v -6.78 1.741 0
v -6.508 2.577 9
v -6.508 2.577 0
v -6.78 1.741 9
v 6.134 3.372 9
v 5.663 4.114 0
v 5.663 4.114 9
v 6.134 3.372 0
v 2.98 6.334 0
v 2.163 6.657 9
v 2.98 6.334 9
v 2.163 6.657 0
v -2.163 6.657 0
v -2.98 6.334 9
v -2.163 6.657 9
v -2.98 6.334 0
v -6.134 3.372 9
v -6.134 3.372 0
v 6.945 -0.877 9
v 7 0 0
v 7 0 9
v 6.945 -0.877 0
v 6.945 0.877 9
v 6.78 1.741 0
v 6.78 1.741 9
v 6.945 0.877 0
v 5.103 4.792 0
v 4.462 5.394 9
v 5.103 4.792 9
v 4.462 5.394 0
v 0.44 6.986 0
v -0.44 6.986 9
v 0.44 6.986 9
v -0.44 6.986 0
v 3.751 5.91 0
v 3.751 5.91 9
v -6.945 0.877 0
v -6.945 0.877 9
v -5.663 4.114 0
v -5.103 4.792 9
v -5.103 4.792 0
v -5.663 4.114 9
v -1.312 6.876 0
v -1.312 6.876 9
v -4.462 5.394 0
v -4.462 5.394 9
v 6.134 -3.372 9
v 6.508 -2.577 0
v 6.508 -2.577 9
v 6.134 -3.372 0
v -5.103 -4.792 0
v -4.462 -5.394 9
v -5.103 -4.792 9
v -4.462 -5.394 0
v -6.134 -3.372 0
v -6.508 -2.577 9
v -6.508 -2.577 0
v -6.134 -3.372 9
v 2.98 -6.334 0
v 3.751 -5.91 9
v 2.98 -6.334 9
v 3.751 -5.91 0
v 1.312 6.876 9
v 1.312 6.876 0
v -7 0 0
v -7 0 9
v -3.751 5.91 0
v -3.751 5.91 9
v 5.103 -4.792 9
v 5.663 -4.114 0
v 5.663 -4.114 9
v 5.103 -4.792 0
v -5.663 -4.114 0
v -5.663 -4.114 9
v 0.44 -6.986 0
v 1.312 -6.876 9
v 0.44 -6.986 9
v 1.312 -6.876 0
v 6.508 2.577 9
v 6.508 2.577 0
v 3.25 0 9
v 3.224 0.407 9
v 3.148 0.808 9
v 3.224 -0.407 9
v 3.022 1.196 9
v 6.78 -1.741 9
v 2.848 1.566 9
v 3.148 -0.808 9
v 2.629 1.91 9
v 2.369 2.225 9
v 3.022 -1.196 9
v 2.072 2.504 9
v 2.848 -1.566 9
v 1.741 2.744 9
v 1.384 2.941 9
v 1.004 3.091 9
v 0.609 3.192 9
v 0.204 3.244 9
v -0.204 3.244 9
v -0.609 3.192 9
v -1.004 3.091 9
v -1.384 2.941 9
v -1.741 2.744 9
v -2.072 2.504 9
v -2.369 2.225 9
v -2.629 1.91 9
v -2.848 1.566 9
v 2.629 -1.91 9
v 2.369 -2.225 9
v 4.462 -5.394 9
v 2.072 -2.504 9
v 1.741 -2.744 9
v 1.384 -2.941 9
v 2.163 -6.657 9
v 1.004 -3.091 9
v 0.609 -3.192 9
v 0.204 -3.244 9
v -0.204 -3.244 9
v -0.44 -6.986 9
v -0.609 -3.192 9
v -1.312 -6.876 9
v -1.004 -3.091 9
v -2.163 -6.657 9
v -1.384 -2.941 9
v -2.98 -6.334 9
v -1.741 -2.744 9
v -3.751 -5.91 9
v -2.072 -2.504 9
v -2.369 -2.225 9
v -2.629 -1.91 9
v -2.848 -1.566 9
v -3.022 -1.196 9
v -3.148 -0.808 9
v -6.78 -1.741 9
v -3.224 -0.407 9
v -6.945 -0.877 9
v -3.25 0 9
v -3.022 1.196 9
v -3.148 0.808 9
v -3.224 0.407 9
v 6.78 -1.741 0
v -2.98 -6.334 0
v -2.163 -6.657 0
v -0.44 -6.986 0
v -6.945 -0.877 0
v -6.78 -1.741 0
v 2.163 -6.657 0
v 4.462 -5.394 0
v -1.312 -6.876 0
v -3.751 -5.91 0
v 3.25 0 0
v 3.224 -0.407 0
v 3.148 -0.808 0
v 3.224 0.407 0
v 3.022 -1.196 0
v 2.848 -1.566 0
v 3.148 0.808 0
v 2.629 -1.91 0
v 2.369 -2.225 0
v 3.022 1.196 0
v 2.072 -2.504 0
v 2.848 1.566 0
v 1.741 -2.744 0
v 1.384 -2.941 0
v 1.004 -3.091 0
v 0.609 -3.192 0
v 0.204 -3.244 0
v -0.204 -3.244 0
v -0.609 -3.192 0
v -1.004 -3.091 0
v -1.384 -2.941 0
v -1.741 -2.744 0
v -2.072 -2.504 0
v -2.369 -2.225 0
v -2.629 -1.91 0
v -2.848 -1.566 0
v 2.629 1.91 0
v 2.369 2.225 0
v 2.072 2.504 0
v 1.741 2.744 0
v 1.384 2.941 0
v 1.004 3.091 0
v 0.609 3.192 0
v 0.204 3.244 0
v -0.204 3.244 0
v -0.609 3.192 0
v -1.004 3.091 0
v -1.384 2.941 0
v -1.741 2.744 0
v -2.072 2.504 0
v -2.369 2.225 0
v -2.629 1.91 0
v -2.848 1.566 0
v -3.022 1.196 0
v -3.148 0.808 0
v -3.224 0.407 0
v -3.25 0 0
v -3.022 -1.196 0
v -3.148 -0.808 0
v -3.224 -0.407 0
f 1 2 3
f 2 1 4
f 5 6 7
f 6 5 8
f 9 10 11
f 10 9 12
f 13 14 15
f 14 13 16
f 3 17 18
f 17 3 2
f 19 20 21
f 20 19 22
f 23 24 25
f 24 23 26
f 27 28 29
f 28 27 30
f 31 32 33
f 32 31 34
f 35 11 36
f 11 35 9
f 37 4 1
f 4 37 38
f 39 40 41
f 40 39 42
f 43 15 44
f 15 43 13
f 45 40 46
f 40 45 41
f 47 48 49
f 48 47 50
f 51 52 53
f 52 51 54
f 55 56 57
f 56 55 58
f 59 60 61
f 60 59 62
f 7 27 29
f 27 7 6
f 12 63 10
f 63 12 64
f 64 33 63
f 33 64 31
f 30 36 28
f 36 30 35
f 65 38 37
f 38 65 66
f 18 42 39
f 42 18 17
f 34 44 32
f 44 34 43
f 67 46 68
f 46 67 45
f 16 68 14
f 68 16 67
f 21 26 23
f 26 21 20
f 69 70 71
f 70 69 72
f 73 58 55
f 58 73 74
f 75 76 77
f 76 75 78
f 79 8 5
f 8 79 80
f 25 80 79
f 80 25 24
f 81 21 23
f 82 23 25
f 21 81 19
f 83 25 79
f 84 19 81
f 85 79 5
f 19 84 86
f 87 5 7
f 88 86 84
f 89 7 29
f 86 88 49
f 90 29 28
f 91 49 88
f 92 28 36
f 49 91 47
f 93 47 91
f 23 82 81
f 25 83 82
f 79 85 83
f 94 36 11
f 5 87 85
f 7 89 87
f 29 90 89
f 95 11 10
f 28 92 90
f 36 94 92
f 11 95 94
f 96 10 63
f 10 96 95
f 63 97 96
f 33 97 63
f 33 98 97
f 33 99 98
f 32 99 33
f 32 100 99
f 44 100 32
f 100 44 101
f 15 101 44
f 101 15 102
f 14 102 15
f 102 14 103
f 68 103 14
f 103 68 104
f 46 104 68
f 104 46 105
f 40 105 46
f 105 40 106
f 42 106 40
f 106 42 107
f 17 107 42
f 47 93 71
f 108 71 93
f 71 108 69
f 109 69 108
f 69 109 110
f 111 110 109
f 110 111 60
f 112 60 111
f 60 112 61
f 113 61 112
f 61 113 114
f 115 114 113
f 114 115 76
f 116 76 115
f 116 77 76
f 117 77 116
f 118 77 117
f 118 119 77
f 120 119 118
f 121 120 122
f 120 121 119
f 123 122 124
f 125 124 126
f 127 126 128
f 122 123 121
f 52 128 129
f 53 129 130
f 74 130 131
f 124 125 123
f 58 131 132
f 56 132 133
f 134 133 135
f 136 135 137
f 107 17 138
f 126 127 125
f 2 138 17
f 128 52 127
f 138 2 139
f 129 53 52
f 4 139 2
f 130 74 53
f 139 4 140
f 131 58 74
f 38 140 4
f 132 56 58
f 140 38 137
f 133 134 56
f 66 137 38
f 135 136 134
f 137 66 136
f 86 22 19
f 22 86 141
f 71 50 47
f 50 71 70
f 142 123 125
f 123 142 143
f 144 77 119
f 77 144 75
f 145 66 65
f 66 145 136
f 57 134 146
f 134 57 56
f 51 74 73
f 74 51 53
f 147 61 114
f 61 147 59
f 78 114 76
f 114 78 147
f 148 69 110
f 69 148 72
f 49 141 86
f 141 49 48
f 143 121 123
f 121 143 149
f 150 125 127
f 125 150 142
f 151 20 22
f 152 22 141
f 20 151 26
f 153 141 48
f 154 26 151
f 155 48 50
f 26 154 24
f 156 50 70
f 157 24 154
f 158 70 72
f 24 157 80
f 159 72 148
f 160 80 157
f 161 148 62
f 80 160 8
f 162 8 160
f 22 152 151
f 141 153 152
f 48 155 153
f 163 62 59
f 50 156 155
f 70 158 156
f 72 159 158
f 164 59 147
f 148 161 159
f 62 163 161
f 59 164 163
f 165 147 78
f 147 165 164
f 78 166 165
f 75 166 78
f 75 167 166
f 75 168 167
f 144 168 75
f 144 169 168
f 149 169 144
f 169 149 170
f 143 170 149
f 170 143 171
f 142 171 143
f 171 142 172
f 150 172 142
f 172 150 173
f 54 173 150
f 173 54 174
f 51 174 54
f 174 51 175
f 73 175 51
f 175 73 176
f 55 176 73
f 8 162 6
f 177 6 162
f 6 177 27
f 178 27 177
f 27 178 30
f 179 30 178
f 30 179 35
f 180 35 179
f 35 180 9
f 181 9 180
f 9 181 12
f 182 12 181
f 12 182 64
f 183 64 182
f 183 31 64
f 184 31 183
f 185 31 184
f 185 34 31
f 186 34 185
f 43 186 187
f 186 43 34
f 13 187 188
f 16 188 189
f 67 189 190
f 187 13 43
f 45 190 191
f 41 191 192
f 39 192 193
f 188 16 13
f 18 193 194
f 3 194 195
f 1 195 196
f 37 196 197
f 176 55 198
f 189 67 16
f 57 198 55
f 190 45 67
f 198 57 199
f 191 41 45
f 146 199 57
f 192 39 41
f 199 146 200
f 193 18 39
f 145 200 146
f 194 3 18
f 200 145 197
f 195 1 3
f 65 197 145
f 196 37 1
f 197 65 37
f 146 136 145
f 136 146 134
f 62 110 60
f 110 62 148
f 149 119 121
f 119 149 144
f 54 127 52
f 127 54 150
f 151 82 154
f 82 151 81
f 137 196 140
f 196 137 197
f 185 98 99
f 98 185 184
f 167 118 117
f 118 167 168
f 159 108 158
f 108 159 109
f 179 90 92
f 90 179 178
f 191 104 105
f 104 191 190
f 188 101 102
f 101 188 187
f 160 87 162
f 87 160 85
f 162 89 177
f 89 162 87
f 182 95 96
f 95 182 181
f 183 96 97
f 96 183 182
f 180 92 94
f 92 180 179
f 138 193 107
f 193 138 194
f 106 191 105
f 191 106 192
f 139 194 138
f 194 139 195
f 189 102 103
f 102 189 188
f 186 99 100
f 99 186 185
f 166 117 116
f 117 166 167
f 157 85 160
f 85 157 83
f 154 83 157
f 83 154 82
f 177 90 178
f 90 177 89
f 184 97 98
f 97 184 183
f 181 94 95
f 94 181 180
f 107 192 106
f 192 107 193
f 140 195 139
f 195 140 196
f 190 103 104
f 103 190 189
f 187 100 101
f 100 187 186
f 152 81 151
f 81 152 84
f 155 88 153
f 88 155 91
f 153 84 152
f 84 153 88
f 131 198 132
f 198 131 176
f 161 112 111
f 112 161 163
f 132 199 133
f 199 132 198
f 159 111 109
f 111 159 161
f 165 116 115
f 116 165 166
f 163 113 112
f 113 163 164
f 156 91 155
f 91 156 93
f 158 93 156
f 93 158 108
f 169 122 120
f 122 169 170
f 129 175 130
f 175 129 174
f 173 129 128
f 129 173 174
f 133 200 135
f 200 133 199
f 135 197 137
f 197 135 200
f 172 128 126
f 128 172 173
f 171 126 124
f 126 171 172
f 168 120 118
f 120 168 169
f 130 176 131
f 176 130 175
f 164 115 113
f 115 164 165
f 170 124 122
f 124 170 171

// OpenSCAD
$fn = 50;


difference() {
	union() {
		cylinder(h = 9, r = 7.0000000000);
	}
	union() {
		translate(v = [0, 0, -100]) {
			cylinder(h = 200, r = 3.2500000000);
		}
	}
}
